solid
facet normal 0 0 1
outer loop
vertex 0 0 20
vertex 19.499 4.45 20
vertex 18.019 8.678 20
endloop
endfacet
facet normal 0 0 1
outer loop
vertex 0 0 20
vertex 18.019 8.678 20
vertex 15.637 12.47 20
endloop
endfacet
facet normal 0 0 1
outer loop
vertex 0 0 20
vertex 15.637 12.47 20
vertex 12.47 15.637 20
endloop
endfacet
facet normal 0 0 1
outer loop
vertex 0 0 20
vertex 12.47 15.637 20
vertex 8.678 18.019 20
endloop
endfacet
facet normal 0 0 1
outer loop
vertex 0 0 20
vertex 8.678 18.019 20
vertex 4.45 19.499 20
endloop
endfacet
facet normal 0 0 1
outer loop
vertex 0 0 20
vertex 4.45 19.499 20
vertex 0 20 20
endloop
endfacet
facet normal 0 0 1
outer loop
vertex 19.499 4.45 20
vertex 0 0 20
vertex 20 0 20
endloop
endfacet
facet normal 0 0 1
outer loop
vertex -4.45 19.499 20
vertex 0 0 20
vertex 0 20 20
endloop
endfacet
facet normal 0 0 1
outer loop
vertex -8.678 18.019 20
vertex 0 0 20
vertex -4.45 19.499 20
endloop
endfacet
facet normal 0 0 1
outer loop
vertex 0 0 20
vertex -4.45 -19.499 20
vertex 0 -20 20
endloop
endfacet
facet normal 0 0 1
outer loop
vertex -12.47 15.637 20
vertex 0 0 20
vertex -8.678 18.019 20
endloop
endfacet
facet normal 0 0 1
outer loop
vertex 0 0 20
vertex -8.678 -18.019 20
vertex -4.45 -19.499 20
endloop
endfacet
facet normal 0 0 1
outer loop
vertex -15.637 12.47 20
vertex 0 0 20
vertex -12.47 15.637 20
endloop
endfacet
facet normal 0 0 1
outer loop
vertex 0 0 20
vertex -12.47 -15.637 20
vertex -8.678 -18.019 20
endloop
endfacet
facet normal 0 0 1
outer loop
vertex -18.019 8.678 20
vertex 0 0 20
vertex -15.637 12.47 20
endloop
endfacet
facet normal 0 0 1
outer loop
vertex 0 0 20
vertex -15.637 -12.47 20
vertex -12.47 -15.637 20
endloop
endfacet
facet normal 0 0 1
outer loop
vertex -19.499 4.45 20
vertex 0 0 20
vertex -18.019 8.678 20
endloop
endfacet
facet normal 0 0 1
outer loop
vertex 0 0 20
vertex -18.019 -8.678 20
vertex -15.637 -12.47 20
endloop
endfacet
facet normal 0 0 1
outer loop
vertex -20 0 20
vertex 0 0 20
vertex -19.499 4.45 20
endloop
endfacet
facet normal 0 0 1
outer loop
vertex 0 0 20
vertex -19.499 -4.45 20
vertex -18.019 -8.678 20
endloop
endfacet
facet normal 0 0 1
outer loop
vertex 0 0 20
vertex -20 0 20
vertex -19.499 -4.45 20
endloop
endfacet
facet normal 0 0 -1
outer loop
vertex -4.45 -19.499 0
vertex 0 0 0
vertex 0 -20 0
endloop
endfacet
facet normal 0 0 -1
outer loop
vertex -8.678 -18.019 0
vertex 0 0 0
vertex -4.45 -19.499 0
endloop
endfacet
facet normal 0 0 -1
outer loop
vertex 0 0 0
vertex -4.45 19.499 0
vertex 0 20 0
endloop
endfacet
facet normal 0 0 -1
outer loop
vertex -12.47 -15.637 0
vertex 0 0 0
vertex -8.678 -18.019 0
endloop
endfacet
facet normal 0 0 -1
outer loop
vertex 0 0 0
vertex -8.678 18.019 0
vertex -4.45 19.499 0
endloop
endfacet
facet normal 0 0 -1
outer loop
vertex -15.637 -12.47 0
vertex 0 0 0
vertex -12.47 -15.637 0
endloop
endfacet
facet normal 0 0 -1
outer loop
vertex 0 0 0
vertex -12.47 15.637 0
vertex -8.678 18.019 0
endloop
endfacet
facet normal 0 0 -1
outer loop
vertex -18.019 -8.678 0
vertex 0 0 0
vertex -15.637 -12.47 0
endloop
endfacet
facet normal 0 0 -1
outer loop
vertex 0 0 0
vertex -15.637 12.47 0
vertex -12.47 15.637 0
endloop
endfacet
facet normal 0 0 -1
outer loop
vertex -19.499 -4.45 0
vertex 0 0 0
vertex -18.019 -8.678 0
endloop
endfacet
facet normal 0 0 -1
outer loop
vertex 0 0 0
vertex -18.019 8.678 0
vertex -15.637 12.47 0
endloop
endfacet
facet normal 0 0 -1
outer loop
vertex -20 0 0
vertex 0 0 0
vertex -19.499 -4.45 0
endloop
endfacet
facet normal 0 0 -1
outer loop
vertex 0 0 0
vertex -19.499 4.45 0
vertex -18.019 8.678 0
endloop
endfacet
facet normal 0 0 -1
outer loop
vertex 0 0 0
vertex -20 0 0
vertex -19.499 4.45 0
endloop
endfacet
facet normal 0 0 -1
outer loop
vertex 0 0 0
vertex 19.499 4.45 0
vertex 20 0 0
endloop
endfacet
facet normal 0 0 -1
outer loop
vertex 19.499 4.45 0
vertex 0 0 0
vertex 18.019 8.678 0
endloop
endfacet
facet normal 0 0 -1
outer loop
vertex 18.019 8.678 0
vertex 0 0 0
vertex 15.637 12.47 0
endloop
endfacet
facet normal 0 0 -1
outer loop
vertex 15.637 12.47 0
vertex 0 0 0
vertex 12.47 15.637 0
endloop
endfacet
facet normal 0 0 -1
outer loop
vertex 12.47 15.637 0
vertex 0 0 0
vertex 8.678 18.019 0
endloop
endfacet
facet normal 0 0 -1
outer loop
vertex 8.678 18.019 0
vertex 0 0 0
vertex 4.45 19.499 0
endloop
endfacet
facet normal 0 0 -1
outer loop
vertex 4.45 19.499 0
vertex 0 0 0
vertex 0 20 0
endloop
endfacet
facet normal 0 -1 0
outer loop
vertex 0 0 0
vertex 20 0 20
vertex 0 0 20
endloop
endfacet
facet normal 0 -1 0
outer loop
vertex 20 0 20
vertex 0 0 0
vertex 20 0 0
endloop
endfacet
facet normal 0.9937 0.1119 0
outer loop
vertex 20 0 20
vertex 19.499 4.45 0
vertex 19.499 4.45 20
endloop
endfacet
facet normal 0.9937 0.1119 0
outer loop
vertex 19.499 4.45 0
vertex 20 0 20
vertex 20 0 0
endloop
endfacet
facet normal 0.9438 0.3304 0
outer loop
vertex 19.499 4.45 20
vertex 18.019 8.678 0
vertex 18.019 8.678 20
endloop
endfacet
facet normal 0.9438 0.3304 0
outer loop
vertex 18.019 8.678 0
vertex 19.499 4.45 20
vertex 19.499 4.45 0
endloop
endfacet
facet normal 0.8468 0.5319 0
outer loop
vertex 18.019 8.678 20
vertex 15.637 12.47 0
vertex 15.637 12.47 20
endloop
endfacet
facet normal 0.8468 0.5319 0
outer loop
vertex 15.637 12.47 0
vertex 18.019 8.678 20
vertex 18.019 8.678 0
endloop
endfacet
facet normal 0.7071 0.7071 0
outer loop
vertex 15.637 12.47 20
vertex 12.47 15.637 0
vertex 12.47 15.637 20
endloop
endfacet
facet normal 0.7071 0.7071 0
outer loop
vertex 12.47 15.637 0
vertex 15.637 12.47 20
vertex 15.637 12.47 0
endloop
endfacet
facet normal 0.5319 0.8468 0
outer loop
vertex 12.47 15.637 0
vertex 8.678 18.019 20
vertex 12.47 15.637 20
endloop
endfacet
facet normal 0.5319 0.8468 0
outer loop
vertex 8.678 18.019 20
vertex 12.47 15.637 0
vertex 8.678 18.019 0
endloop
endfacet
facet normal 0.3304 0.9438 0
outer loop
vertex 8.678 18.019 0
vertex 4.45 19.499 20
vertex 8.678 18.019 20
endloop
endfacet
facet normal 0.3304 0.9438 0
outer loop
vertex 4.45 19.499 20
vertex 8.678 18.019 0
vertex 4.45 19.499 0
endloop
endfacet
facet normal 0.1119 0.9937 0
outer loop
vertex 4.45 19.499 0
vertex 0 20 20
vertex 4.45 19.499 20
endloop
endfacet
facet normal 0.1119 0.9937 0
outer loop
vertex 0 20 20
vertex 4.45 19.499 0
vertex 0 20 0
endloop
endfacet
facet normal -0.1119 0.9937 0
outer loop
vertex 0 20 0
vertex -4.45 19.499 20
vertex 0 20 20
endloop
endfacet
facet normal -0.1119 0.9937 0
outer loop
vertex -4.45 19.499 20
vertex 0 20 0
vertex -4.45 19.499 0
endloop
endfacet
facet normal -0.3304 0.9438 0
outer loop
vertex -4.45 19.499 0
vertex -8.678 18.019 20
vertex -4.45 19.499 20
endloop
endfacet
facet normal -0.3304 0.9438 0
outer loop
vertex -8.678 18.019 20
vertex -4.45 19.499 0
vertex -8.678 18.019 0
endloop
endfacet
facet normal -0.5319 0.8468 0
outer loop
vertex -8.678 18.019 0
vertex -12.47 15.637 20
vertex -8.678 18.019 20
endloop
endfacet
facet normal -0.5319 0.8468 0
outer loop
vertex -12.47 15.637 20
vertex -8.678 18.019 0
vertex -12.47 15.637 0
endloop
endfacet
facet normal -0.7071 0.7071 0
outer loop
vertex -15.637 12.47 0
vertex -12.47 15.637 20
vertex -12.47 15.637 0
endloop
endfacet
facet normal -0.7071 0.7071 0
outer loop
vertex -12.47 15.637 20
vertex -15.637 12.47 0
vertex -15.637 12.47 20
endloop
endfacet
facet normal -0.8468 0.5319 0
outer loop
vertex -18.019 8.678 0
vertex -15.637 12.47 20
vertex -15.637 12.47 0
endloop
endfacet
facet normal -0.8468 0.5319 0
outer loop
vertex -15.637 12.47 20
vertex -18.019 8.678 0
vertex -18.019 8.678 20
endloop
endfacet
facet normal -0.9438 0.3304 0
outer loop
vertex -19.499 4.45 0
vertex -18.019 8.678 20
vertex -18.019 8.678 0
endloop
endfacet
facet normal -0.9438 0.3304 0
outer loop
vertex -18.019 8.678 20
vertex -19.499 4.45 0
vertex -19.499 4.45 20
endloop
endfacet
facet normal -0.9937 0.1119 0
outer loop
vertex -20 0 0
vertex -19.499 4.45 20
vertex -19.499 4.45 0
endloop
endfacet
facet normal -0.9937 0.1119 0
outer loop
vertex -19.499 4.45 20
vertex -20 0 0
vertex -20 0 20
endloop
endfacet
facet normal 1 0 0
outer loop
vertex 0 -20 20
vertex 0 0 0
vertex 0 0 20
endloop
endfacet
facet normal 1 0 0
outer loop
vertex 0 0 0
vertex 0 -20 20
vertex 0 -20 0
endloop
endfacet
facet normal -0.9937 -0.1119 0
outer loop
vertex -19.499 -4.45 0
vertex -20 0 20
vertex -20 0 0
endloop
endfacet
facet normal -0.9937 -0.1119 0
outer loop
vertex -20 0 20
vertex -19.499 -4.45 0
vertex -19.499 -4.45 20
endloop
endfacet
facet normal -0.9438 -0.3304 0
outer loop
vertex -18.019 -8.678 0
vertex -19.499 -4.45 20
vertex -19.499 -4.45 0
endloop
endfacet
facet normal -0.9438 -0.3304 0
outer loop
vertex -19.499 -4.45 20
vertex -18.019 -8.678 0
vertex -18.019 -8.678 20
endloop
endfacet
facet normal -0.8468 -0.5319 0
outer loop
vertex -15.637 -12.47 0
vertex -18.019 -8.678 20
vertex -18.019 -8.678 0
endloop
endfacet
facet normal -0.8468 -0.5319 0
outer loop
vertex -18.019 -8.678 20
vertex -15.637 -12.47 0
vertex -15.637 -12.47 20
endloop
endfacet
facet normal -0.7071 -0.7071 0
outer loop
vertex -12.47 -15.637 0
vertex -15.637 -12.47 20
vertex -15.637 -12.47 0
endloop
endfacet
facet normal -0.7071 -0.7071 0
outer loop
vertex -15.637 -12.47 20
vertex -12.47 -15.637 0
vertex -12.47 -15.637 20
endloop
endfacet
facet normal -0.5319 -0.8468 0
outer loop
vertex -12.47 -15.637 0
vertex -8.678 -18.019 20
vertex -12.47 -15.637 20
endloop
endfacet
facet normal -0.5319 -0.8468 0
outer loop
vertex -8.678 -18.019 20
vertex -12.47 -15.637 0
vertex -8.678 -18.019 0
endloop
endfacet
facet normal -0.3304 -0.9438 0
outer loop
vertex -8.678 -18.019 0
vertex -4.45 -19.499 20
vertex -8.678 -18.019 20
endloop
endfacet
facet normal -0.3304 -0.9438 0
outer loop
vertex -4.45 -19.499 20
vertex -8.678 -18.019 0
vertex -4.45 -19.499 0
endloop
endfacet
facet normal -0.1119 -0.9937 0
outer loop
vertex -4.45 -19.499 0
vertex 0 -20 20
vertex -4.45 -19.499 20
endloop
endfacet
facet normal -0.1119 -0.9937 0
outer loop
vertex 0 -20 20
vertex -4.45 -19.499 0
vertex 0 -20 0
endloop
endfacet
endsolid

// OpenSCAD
// Module to create a single curved wedge block
module curved_wedge_block() {
    difference() {
        // Start with a cube that will be cut into a wedge
        cube([20, 20, 20], center=false);
        
        // Subtract a quarter cylinder to create the curved surface
        rotate([0, 0, 0])
        translate([0, 0, 0])
        rotate_extrude(angle=90)
            translate([20, 0, 0])
                square([20, 20]);
    }
}

// Arrange three curved wedge blocks in a circular pattern
module layer_1() {
    for (i = [0:2]) {
        rotate([0, 0, i * 90])
            curved_wedge_block();
    }
}

// Call the layer module to render the model
layer_1();

 
